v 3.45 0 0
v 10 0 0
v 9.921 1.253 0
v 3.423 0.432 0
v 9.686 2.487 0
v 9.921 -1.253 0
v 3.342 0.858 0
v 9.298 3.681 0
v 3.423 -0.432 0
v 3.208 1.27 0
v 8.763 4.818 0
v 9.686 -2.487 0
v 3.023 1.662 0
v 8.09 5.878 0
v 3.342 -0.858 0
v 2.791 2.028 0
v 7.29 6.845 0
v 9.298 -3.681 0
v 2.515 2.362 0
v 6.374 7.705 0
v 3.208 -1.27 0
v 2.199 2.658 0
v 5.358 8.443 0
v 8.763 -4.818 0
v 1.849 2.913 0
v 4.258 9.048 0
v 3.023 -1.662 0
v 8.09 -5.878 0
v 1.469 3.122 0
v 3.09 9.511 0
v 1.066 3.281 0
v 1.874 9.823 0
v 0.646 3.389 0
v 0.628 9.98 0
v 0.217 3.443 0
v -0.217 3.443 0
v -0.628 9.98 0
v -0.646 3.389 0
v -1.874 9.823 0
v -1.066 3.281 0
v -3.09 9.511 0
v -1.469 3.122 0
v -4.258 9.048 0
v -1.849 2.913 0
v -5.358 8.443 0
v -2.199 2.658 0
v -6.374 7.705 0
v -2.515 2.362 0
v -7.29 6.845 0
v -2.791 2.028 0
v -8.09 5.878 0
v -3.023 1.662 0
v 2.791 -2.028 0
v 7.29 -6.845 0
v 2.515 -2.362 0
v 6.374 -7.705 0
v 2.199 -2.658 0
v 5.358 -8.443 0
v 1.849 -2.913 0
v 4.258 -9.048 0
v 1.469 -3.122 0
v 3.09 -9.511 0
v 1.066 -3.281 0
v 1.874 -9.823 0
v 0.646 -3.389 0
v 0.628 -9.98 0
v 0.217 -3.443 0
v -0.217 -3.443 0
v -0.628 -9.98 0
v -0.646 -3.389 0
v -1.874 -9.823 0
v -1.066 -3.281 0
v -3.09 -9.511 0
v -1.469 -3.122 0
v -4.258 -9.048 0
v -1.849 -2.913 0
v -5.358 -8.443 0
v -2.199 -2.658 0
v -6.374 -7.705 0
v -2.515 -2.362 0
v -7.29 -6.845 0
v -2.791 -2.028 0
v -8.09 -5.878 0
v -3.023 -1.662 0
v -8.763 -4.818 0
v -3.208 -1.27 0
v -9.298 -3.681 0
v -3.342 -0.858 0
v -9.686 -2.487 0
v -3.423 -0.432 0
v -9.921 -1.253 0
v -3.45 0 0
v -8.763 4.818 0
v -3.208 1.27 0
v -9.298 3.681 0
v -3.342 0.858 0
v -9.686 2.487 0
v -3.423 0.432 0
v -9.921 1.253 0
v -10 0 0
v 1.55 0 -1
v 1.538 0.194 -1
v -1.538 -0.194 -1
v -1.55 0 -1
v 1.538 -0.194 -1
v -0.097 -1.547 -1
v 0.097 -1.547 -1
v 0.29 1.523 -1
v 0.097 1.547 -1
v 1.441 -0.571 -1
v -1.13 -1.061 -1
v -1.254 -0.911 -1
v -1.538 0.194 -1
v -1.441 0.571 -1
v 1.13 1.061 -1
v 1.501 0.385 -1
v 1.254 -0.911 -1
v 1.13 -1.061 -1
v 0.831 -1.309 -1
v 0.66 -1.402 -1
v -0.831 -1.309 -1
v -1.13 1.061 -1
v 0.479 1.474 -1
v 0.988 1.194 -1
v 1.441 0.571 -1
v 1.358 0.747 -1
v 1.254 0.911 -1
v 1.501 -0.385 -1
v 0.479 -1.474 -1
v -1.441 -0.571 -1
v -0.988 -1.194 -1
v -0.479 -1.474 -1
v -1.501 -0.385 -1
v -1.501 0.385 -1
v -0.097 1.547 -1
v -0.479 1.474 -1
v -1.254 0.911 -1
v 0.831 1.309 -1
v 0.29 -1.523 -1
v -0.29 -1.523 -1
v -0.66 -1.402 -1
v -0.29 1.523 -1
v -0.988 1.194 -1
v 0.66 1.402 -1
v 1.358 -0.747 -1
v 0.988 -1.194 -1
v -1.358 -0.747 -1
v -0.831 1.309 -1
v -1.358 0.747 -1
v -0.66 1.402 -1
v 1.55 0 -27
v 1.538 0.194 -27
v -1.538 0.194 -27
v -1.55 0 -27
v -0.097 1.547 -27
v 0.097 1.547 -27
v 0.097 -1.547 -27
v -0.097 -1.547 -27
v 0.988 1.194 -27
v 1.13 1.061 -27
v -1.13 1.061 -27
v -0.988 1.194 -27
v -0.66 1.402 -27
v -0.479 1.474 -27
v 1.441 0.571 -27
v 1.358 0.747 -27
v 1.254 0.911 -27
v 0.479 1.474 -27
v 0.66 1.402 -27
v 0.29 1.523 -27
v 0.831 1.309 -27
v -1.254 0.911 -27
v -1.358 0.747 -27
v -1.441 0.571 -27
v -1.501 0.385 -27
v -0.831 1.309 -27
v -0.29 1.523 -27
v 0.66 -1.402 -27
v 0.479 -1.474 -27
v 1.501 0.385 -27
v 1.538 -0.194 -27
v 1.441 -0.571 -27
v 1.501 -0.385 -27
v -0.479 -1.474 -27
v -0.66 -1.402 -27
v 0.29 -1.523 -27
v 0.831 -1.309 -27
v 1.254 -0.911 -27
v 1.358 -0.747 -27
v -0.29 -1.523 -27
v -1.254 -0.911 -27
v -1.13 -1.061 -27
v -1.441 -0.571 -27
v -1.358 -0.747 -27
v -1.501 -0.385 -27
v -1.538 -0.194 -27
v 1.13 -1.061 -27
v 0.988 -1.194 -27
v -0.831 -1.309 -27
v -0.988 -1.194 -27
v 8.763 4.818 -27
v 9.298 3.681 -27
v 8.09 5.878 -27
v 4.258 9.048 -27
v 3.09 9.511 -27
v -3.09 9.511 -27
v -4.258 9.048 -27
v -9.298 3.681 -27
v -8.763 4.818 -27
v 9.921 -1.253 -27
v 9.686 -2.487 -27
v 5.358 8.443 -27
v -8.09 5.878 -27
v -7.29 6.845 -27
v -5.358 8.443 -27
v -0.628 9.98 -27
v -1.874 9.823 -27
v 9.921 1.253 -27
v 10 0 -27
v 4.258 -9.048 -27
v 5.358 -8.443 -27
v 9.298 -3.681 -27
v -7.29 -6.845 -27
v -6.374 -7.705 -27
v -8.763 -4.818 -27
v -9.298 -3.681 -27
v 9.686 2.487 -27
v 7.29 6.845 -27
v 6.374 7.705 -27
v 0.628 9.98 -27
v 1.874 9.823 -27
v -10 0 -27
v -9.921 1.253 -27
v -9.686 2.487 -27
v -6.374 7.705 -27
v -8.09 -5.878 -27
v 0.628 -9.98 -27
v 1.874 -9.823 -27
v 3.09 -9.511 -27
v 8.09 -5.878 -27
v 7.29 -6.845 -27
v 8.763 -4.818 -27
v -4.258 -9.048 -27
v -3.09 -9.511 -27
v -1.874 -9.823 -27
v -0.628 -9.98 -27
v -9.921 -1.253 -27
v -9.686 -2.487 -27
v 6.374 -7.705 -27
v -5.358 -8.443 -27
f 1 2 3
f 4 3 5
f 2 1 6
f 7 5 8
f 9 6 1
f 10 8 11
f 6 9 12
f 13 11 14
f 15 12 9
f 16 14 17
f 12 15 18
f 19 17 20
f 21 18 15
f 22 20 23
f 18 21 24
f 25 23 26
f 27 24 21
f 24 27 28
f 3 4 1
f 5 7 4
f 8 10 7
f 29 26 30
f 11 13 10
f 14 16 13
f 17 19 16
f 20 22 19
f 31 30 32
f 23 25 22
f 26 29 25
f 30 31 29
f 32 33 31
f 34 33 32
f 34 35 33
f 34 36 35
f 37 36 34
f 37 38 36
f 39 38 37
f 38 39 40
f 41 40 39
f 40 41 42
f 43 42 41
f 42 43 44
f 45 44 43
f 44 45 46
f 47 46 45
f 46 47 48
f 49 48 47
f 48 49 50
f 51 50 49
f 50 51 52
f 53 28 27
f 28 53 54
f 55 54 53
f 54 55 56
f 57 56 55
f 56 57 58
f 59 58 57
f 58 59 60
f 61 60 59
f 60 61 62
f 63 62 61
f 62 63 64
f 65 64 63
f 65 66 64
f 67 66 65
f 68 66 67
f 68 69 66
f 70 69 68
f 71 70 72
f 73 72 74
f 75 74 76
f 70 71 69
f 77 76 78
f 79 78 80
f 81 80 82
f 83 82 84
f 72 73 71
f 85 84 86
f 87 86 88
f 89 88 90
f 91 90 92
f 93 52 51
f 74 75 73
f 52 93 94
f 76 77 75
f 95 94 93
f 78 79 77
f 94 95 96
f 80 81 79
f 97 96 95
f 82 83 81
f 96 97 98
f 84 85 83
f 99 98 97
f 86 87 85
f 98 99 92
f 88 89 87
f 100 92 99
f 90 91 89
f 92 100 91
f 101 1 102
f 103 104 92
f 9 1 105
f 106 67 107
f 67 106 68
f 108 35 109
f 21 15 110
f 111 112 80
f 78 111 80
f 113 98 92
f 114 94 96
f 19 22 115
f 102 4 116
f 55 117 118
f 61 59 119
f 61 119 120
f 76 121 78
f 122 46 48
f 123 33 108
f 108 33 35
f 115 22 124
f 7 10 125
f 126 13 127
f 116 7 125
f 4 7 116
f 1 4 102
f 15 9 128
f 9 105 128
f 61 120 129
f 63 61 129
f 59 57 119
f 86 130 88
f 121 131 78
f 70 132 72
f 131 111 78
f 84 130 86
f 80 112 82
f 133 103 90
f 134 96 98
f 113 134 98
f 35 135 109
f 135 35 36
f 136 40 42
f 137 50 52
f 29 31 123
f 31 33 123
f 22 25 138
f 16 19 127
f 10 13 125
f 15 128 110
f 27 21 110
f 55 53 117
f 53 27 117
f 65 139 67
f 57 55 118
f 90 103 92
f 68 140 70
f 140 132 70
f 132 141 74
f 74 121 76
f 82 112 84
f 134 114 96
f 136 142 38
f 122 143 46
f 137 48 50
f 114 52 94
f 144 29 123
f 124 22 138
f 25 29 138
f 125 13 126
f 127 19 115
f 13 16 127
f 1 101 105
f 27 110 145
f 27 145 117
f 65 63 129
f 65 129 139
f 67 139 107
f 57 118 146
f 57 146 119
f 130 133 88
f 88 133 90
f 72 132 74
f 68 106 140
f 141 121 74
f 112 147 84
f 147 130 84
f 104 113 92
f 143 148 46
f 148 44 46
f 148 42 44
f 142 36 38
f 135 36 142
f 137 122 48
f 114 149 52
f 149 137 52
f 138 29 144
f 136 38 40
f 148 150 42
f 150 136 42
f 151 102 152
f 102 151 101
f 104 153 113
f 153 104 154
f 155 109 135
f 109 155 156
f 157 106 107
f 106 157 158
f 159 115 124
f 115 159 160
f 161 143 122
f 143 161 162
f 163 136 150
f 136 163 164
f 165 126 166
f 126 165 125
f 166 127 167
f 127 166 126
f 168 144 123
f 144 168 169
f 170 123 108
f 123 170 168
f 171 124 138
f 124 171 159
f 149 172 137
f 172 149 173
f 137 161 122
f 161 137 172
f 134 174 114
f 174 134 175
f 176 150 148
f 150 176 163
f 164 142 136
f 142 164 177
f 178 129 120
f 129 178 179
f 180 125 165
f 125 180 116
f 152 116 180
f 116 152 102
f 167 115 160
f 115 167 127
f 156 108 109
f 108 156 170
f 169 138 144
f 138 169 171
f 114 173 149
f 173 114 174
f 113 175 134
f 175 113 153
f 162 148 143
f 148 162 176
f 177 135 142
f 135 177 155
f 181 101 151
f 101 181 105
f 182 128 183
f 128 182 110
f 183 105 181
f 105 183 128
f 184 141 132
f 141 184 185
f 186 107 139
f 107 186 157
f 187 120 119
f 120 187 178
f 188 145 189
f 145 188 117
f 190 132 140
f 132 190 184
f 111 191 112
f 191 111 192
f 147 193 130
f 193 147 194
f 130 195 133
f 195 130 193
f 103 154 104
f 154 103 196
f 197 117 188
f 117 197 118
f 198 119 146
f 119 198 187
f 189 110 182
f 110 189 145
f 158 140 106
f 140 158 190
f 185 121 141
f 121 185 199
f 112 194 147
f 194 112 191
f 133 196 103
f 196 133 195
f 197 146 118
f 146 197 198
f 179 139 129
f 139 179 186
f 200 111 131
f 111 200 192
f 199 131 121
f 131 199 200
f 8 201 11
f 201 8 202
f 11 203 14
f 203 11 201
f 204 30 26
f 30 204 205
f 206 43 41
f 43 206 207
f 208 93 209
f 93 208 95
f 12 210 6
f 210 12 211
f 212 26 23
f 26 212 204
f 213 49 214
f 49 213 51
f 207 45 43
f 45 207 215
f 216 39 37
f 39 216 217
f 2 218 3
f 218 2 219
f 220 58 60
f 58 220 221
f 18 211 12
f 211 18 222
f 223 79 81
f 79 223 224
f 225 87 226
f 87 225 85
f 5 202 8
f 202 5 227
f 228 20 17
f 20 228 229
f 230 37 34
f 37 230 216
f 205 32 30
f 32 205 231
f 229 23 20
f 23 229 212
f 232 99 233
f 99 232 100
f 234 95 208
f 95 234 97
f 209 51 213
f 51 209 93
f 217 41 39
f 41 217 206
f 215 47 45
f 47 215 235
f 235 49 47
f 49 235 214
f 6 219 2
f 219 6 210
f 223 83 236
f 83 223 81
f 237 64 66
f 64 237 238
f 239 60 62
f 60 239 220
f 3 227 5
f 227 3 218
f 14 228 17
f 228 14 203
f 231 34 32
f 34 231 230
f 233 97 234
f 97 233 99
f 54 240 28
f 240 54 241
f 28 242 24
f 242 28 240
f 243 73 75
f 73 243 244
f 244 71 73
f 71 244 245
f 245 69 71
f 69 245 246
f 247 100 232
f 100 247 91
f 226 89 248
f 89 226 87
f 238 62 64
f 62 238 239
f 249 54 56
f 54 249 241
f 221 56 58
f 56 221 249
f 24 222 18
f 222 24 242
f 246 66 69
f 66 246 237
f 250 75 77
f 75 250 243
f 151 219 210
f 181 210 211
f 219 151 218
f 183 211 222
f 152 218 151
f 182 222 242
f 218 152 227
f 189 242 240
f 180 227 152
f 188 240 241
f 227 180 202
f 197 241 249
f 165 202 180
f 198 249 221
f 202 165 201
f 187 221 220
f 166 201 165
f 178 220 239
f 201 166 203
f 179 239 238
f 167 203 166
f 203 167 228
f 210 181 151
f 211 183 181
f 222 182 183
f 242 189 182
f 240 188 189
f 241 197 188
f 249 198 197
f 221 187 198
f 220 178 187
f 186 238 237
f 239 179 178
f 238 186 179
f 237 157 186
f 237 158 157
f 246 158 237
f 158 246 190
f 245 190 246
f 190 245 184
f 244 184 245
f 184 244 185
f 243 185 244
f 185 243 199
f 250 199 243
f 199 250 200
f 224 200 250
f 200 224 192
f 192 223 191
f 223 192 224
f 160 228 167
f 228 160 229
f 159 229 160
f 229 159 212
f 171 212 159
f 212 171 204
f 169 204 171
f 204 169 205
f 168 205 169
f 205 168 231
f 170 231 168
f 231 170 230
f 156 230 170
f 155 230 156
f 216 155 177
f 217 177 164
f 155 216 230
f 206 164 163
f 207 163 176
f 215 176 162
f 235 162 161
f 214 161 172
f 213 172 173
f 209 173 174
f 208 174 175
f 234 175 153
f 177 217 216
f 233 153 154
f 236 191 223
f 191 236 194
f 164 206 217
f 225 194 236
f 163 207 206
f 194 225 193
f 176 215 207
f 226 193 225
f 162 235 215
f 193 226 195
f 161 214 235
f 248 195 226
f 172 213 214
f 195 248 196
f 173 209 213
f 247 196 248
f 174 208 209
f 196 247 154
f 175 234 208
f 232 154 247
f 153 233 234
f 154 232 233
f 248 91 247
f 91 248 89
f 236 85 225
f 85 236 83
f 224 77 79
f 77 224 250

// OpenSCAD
$fn = 50;

difference() {
	union() {
		translate(v = [0, 0, -27.0]) {
			cylinder(h = 27, r = 10.0);
		}
	}
	union() {
		translate(v = [0, 0, 0]) {
			rotate(a = [0, 0, 0]) {
				difference() {
					union() {
						translate(v = [0, 0, -30.0]) {
							cylinder(h = 30, r = 1.25);
						}
						translate(v = [0, 0, -1.0]) {
							cylinder(h = 1.0, r1 = 1.55, r2 = 3.45);
						}
						translate(v = [0, 0, -30.0]) {
							cylinder(h = 30, r = 1.55);
						}
						translate(v = [0, 0, -30.0]) {
							cylinder(h = 30, r = 1.25);
						}
					}
					union();
				}
			}
		}
	}
}
